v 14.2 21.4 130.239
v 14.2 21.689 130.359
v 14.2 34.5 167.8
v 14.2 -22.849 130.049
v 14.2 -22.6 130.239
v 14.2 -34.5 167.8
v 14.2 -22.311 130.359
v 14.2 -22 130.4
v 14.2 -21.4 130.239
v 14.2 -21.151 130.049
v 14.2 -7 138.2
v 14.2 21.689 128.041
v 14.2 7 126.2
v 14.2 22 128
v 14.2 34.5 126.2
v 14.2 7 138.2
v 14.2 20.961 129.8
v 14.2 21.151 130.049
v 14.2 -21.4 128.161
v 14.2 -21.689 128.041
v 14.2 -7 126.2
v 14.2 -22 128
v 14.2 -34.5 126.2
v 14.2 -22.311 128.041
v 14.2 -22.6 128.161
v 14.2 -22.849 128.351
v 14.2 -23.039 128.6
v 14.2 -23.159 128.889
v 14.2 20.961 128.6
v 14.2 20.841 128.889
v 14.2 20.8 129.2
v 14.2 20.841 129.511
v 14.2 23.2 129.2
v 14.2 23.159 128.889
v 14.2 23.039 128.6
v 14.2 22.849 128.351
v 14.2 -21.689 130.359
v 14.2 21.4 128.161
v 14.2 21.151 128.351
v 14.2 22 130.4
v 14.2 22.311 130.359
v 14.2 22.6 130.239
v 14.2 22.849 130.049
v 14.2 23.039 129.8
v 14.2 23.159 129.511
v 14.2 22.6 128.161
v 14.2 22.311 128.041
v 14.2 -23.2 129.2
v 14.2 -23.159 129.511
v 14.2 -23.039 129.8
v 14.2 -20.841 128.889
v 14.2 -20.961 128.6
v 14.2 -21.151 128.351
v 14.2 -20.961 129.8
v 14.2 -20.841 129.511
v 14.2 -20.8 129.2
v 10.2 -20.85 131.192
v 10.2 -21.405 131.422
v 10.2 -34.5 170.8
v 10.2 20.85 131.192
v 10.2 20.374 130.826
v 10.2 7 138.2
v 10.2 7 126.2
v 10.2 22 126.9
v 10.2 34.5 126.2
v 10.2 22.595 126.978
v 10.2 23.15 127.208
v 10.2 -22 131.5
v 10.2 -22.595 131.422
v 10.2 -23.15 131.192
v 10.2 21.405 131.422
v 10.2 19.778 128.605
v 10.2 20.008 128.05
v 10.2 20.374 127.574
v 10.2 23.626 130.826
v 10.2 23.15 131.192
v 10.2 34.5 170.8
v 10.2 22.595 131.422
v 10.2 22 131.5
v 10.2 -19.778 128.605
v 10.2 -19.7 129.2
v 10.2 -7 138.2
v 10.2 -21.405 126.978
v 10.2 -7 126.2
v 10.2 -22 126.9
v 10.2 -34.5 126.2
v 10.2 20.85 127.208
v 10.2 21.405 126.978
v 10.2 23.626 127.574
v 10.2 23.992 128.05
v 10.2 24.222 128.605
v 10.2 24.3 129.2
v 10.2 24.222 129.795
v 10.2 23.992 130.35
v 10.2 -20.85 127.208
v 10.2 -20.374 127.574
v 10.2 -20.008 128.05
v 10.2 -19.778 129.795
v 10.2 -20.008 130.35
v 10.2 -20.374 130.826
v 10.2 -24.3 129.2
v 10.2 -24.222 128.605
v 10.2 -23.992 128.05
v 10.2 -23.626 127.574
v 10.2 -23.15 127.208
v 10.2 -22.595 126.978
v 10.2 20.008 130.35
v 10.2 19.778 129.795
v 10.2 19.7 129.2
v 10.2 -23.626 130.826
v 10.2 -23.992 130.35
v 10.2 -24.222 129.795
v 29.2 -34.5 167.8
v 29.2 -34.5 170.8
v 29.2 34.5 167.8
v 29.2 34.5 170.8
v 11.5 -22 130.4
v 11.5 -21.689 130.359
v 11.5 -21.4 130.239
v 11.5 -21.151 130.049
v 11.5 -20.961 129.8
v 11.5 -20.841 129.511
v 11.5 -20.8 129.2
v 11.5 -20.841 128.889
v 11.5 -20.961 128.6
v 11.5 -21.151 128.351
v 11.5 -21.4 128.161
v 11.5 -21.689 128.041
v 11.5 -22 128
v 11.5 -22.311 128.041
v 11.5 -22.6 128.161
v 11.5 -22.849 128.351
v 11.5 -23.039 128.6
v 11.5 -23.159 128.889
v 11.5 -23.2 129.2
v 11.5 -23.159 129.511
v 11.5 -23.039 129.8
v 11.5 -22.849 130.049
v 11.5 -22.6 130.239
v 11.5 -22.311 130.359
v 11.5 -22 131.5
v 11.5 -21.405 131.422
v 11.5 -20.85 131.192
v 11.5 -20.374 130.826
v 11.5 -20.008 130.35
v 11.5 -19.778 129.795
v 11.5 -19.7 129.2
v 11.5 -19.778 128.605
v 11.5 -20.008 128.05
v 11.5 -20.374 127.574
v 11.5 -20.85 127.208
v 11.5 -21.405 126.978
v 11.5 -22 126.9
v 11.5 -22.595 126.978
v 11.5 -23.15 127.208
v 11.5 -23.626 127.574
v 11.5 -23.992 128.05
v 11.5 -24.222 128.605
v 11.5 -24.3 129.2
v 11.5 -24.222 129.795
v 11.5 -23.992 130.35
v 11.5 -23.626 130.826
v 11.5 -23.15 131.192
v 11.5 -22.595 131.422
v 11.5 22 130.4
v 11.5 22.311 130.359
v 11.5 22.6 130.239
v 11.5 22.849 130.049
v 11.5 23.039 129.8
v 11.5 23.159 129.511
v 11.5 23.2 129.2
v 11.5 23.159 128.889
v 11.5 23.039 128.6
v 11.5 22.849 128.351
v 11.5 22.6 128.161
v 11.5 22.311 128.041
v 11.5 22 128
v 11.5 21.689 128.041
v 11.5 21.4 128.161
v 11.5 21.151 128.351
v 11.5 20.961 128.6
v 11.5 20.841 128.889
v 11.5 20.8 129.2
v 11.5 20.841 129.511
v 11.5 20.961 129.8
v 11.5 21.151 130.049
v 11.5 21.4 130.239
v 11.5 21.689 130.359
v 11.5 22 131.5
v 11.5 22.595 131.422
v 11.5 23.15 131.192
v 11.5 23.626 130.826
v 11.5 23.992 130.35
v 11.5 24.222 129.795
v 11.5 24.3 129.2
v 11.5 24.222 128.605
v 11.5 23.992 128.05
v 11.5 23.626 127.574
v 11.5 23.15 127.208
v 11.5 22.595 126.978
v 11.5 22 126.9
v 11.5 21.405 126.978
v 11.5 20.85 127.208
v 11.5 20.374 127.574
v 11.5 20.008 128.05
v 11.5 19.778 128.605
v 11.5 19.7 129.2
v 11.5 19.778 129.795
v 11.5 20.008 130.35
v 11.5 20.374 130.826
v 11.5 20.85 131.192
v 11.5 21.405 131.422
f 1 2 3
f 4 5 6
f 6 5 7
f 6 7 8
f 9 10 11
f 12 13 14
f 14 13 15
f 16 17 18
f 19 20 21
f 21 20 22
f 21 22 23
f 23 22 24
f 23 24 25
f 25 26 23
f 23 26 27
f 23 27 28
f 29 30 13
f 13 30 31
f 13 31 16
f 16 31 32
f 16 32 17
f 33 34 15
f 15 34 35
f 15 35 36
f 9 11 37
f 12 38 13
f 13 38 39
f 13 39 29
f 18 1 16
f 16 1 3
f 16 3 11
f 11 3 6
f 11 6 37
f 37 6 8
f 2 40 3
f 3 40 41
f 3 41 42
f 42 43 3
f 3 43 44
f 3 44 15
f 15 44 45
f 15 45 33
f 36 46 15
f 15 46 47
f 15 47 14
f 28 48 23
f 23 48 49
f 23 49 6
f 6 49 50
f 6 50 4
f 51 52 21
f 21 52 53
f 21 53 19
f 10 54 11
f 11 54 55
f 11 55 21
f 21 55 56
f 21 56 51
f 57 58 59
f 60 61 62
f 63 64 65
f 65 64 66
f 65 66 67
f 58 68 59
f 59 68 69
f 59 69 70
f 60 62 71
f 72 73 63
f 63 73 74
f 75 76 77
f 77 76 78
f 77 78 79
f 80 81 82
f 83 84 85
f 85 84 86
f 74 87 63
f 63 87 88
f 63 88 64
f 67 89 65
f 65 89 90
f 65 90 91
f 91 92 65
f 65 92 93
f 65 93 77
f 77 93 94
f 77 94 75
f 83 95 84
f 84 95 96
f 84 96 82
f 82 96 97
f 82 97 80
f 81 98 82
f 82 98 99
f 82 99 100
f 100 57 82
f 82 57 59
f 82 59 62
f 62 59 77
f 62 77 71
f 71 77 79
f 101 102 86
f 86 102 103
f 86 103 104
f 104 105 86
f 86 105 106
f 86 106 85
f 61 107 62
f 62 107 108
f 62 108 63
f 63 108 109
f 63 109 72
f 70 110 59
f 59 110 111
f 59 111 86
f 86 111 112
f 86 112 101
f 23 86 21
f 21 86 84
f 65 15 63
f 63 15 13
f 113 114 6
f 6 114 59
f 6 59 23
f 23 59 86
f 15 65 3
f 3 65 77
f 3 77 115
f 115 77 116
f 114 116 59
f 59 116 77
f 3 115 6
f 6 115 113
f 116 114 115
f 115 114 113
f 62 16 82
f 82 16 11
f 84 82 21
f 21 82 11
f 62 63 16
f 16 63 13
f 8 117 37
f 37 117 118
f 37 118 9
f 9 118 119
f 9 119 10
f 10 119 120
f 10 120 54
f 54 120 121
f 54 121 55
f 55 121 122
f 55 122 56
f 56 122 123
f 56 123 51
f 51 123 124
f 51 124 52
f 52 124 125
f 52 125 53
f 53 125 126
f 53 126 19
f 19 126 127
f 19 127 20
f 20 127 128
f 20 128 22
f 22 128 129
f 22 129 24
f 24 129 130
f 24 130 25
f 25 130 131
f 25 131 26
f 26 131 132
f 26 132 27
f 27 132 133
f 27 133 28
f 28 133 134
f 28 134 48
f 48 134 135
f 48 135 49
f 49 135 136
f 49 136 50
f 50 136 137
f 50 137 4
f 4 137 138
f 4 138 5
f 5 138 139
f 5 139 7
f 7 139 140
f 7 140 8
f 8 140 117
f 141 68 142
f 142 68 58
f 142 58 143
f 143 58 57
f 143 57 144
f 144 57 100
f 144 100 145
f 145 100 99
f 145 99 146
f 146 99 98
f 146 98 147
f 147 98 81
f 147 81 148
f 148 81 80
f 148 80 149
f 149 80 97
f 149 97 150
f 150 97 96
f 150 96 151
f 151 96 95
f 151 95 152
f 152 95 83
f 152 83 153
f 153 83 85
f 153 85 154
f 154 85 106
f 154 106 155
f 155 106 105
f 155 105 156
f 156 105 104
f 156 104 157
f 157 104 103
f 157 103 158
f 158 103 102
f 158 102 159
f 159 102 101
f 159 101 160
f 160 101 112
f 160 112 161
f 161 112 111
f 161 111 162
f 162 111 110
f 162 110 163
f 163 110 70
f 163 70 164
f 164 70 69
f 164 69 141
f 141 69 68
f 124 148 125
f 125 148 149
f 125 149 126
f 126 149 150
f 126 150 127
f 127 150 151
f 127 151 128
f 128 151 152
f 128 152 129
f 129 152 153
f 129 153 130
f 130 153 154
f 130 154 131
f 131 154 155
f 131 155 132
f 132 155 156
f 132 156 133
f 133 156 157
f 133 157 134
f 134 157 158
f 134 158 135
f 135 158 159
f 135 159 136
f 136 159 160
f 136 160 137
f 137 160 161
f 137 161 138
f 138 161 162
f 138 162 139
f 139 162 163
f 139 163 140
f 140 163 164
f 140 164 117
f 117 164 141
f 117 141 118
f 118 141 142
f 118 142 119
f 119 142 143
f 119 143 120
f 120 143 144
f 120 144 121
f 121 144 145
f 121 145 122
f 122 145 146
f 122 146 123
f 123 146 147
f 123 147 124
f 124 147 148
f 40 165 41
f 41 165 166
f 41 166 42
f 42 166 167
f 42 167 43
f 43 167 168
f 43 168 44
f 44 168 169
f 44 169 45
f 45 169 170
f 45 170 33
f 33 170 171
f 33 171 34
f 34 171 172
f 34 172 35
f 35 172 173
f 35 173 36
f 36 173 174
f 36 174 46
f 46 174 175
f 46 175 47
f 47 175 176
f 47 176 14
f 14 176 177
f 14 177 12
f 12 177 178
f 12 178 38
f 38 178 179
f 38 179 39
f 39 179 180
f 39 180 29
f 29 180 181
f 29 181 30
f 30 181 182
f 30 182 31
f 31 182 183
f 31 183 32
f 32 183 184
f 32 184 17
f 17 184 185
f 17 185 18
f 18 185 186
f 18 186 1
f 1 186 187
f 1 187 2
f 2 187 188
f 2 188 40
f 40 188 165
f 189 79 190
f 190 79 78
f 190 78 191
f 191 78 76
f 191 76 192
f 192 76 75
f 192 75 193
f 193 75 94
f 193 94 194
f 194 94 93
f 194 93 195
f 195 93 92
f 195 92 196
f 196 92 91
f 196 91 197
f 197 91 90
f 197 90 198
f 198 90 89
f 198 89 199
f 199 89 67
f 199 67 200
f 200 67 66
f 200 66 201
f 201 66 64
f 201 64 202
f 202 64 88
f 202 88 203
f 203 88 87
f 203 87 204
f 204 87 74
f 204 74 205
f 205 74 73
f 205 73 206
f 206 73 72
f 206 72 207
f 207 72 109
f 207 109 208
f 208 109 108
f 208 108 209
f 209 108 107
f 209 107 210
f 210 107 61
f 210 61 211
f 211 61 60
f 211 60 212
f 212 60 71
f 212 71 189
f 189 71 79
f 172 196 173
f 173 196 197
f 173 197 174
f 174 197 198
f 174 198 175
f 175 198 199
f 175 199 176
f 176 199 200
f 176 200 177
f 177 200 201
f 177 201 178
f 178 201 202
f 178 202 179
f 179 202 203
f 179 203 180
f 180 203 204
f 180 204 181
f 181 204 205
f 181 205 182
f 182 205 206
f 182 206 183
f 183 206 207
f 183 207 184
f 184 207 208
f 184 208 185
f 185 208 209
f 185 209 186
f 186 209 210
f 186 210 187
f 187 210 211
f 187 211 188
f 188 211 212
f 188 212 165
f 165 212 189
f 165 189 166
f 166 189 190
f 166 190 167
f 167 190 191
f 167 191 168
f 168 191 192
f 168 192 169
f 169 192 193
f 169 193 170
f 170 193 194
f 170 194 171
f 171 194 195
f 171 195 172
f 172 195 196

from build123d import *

# Parameters (mm, degrees)
S_BOX1_W       = 4
S_BOX1_H       = 69
BOSS_1_DEPTH   = 44.6
S_BOX2_W       = 19
S_BOX2_H       = 69
BOSS_2_DEPTH   = 3
S_CUT3_W       = 4.2
S_CUT3_H       = 14
POCKET_3_DEPTH = 12.1
S_HOLE4_R      = 1.2
HOLE_4_DEPTH   = 4.2
S_HOLE5_R      = 2.3
HOLE_5_DEPTH   = 1.4
S_HOLE6_R      = 1.2
HOLE_6_DEPTH   = 4.2
S_HOLE7_R      = 2.3
HOLE_7_DEPTH   = 1.4


with BuildPart() as part:
    # S_box1 → Boss_1 (new body)
    with BuildSketch(Plane.XY.offset(126.2)):
        with Locations((12.2, 0)):
            Rectangle(S_BOX1_W, S_BOX1_H)
    extrude(amount=BOSS_1_DEPTH)

    # S_box2 → Boss_2 (add)
    with BuildSketch(Plane.XY.offset(167.8)):
        with Locations((19.7, 0)):
            Rectangle(S_BOX2_W, S_BOX2_H)
    extrude(amount=BOSS_2_DEPTH)

    # S_cut3 → Pocket_3 (cut)
    with BuildSketch(Plane.XY.offset(126.1)):
        with Locations((12.2, 0)):
            Rectangle(S_CUT3_W, S_CUT3_H)
    extrude(amount=POCKET_3_DEPTH, mode=Mode.SUBTRACT)

    # S_hole4 → Hole_4 (cut)
    with BuildSketch(Plane(origin=(10.1, 0, 0), x_dir=(0, 0, -1), z_dir=(1, 0, 0))):
        with Locations(Location((-129.2, -22, 0), (0, 0, 180))):
            Circle(S_HOLE4_R)
    extrude(amount=HOLE_4_DEPTH, mode=Mode.SUBTRACT)

    # S_hole5 → Hole_5 (cut)
    with BuildSketch(Plane(origin=(10.1, 0, 0), x_dir=(0, 0, -1), z_dir=(1, 0, 0))):
        with Locations((-129.2, -22)):
            Circle(S_HOLE5_R)
    extrude(amount=HOLE_5_DEPTH, mode=Mode.SUBTRACT)

    # S_hole6 → Hole_6 (cut)
    with BuildSketch(Plane(origin=(10.1, 0, 0), x_dir=(0, 0, -1), z_dir=(1, 0, 0))):
        with Locations(Location((-129.2, 22, 0), (0, 0, 180))):
            Circle(S_HOLE6_R)
    extrude(amount=HOLE_6_DEPTH, mode=Mode.SUBTRACT)

    # S_hole7 → Hole_7 (cut)
    with BuildSketch(Plane(origin=(10.1, 0, 0), x_dir=(0, 0, -1), z_dir=(1, 0, 0))):
        with Locations((-129.2, 22)):
            Circle(S_HOLE7_R)
    extrude(amount=HOLE_7_DEPTH, mode=Mode.SUBTRACT)


solid = part.part
